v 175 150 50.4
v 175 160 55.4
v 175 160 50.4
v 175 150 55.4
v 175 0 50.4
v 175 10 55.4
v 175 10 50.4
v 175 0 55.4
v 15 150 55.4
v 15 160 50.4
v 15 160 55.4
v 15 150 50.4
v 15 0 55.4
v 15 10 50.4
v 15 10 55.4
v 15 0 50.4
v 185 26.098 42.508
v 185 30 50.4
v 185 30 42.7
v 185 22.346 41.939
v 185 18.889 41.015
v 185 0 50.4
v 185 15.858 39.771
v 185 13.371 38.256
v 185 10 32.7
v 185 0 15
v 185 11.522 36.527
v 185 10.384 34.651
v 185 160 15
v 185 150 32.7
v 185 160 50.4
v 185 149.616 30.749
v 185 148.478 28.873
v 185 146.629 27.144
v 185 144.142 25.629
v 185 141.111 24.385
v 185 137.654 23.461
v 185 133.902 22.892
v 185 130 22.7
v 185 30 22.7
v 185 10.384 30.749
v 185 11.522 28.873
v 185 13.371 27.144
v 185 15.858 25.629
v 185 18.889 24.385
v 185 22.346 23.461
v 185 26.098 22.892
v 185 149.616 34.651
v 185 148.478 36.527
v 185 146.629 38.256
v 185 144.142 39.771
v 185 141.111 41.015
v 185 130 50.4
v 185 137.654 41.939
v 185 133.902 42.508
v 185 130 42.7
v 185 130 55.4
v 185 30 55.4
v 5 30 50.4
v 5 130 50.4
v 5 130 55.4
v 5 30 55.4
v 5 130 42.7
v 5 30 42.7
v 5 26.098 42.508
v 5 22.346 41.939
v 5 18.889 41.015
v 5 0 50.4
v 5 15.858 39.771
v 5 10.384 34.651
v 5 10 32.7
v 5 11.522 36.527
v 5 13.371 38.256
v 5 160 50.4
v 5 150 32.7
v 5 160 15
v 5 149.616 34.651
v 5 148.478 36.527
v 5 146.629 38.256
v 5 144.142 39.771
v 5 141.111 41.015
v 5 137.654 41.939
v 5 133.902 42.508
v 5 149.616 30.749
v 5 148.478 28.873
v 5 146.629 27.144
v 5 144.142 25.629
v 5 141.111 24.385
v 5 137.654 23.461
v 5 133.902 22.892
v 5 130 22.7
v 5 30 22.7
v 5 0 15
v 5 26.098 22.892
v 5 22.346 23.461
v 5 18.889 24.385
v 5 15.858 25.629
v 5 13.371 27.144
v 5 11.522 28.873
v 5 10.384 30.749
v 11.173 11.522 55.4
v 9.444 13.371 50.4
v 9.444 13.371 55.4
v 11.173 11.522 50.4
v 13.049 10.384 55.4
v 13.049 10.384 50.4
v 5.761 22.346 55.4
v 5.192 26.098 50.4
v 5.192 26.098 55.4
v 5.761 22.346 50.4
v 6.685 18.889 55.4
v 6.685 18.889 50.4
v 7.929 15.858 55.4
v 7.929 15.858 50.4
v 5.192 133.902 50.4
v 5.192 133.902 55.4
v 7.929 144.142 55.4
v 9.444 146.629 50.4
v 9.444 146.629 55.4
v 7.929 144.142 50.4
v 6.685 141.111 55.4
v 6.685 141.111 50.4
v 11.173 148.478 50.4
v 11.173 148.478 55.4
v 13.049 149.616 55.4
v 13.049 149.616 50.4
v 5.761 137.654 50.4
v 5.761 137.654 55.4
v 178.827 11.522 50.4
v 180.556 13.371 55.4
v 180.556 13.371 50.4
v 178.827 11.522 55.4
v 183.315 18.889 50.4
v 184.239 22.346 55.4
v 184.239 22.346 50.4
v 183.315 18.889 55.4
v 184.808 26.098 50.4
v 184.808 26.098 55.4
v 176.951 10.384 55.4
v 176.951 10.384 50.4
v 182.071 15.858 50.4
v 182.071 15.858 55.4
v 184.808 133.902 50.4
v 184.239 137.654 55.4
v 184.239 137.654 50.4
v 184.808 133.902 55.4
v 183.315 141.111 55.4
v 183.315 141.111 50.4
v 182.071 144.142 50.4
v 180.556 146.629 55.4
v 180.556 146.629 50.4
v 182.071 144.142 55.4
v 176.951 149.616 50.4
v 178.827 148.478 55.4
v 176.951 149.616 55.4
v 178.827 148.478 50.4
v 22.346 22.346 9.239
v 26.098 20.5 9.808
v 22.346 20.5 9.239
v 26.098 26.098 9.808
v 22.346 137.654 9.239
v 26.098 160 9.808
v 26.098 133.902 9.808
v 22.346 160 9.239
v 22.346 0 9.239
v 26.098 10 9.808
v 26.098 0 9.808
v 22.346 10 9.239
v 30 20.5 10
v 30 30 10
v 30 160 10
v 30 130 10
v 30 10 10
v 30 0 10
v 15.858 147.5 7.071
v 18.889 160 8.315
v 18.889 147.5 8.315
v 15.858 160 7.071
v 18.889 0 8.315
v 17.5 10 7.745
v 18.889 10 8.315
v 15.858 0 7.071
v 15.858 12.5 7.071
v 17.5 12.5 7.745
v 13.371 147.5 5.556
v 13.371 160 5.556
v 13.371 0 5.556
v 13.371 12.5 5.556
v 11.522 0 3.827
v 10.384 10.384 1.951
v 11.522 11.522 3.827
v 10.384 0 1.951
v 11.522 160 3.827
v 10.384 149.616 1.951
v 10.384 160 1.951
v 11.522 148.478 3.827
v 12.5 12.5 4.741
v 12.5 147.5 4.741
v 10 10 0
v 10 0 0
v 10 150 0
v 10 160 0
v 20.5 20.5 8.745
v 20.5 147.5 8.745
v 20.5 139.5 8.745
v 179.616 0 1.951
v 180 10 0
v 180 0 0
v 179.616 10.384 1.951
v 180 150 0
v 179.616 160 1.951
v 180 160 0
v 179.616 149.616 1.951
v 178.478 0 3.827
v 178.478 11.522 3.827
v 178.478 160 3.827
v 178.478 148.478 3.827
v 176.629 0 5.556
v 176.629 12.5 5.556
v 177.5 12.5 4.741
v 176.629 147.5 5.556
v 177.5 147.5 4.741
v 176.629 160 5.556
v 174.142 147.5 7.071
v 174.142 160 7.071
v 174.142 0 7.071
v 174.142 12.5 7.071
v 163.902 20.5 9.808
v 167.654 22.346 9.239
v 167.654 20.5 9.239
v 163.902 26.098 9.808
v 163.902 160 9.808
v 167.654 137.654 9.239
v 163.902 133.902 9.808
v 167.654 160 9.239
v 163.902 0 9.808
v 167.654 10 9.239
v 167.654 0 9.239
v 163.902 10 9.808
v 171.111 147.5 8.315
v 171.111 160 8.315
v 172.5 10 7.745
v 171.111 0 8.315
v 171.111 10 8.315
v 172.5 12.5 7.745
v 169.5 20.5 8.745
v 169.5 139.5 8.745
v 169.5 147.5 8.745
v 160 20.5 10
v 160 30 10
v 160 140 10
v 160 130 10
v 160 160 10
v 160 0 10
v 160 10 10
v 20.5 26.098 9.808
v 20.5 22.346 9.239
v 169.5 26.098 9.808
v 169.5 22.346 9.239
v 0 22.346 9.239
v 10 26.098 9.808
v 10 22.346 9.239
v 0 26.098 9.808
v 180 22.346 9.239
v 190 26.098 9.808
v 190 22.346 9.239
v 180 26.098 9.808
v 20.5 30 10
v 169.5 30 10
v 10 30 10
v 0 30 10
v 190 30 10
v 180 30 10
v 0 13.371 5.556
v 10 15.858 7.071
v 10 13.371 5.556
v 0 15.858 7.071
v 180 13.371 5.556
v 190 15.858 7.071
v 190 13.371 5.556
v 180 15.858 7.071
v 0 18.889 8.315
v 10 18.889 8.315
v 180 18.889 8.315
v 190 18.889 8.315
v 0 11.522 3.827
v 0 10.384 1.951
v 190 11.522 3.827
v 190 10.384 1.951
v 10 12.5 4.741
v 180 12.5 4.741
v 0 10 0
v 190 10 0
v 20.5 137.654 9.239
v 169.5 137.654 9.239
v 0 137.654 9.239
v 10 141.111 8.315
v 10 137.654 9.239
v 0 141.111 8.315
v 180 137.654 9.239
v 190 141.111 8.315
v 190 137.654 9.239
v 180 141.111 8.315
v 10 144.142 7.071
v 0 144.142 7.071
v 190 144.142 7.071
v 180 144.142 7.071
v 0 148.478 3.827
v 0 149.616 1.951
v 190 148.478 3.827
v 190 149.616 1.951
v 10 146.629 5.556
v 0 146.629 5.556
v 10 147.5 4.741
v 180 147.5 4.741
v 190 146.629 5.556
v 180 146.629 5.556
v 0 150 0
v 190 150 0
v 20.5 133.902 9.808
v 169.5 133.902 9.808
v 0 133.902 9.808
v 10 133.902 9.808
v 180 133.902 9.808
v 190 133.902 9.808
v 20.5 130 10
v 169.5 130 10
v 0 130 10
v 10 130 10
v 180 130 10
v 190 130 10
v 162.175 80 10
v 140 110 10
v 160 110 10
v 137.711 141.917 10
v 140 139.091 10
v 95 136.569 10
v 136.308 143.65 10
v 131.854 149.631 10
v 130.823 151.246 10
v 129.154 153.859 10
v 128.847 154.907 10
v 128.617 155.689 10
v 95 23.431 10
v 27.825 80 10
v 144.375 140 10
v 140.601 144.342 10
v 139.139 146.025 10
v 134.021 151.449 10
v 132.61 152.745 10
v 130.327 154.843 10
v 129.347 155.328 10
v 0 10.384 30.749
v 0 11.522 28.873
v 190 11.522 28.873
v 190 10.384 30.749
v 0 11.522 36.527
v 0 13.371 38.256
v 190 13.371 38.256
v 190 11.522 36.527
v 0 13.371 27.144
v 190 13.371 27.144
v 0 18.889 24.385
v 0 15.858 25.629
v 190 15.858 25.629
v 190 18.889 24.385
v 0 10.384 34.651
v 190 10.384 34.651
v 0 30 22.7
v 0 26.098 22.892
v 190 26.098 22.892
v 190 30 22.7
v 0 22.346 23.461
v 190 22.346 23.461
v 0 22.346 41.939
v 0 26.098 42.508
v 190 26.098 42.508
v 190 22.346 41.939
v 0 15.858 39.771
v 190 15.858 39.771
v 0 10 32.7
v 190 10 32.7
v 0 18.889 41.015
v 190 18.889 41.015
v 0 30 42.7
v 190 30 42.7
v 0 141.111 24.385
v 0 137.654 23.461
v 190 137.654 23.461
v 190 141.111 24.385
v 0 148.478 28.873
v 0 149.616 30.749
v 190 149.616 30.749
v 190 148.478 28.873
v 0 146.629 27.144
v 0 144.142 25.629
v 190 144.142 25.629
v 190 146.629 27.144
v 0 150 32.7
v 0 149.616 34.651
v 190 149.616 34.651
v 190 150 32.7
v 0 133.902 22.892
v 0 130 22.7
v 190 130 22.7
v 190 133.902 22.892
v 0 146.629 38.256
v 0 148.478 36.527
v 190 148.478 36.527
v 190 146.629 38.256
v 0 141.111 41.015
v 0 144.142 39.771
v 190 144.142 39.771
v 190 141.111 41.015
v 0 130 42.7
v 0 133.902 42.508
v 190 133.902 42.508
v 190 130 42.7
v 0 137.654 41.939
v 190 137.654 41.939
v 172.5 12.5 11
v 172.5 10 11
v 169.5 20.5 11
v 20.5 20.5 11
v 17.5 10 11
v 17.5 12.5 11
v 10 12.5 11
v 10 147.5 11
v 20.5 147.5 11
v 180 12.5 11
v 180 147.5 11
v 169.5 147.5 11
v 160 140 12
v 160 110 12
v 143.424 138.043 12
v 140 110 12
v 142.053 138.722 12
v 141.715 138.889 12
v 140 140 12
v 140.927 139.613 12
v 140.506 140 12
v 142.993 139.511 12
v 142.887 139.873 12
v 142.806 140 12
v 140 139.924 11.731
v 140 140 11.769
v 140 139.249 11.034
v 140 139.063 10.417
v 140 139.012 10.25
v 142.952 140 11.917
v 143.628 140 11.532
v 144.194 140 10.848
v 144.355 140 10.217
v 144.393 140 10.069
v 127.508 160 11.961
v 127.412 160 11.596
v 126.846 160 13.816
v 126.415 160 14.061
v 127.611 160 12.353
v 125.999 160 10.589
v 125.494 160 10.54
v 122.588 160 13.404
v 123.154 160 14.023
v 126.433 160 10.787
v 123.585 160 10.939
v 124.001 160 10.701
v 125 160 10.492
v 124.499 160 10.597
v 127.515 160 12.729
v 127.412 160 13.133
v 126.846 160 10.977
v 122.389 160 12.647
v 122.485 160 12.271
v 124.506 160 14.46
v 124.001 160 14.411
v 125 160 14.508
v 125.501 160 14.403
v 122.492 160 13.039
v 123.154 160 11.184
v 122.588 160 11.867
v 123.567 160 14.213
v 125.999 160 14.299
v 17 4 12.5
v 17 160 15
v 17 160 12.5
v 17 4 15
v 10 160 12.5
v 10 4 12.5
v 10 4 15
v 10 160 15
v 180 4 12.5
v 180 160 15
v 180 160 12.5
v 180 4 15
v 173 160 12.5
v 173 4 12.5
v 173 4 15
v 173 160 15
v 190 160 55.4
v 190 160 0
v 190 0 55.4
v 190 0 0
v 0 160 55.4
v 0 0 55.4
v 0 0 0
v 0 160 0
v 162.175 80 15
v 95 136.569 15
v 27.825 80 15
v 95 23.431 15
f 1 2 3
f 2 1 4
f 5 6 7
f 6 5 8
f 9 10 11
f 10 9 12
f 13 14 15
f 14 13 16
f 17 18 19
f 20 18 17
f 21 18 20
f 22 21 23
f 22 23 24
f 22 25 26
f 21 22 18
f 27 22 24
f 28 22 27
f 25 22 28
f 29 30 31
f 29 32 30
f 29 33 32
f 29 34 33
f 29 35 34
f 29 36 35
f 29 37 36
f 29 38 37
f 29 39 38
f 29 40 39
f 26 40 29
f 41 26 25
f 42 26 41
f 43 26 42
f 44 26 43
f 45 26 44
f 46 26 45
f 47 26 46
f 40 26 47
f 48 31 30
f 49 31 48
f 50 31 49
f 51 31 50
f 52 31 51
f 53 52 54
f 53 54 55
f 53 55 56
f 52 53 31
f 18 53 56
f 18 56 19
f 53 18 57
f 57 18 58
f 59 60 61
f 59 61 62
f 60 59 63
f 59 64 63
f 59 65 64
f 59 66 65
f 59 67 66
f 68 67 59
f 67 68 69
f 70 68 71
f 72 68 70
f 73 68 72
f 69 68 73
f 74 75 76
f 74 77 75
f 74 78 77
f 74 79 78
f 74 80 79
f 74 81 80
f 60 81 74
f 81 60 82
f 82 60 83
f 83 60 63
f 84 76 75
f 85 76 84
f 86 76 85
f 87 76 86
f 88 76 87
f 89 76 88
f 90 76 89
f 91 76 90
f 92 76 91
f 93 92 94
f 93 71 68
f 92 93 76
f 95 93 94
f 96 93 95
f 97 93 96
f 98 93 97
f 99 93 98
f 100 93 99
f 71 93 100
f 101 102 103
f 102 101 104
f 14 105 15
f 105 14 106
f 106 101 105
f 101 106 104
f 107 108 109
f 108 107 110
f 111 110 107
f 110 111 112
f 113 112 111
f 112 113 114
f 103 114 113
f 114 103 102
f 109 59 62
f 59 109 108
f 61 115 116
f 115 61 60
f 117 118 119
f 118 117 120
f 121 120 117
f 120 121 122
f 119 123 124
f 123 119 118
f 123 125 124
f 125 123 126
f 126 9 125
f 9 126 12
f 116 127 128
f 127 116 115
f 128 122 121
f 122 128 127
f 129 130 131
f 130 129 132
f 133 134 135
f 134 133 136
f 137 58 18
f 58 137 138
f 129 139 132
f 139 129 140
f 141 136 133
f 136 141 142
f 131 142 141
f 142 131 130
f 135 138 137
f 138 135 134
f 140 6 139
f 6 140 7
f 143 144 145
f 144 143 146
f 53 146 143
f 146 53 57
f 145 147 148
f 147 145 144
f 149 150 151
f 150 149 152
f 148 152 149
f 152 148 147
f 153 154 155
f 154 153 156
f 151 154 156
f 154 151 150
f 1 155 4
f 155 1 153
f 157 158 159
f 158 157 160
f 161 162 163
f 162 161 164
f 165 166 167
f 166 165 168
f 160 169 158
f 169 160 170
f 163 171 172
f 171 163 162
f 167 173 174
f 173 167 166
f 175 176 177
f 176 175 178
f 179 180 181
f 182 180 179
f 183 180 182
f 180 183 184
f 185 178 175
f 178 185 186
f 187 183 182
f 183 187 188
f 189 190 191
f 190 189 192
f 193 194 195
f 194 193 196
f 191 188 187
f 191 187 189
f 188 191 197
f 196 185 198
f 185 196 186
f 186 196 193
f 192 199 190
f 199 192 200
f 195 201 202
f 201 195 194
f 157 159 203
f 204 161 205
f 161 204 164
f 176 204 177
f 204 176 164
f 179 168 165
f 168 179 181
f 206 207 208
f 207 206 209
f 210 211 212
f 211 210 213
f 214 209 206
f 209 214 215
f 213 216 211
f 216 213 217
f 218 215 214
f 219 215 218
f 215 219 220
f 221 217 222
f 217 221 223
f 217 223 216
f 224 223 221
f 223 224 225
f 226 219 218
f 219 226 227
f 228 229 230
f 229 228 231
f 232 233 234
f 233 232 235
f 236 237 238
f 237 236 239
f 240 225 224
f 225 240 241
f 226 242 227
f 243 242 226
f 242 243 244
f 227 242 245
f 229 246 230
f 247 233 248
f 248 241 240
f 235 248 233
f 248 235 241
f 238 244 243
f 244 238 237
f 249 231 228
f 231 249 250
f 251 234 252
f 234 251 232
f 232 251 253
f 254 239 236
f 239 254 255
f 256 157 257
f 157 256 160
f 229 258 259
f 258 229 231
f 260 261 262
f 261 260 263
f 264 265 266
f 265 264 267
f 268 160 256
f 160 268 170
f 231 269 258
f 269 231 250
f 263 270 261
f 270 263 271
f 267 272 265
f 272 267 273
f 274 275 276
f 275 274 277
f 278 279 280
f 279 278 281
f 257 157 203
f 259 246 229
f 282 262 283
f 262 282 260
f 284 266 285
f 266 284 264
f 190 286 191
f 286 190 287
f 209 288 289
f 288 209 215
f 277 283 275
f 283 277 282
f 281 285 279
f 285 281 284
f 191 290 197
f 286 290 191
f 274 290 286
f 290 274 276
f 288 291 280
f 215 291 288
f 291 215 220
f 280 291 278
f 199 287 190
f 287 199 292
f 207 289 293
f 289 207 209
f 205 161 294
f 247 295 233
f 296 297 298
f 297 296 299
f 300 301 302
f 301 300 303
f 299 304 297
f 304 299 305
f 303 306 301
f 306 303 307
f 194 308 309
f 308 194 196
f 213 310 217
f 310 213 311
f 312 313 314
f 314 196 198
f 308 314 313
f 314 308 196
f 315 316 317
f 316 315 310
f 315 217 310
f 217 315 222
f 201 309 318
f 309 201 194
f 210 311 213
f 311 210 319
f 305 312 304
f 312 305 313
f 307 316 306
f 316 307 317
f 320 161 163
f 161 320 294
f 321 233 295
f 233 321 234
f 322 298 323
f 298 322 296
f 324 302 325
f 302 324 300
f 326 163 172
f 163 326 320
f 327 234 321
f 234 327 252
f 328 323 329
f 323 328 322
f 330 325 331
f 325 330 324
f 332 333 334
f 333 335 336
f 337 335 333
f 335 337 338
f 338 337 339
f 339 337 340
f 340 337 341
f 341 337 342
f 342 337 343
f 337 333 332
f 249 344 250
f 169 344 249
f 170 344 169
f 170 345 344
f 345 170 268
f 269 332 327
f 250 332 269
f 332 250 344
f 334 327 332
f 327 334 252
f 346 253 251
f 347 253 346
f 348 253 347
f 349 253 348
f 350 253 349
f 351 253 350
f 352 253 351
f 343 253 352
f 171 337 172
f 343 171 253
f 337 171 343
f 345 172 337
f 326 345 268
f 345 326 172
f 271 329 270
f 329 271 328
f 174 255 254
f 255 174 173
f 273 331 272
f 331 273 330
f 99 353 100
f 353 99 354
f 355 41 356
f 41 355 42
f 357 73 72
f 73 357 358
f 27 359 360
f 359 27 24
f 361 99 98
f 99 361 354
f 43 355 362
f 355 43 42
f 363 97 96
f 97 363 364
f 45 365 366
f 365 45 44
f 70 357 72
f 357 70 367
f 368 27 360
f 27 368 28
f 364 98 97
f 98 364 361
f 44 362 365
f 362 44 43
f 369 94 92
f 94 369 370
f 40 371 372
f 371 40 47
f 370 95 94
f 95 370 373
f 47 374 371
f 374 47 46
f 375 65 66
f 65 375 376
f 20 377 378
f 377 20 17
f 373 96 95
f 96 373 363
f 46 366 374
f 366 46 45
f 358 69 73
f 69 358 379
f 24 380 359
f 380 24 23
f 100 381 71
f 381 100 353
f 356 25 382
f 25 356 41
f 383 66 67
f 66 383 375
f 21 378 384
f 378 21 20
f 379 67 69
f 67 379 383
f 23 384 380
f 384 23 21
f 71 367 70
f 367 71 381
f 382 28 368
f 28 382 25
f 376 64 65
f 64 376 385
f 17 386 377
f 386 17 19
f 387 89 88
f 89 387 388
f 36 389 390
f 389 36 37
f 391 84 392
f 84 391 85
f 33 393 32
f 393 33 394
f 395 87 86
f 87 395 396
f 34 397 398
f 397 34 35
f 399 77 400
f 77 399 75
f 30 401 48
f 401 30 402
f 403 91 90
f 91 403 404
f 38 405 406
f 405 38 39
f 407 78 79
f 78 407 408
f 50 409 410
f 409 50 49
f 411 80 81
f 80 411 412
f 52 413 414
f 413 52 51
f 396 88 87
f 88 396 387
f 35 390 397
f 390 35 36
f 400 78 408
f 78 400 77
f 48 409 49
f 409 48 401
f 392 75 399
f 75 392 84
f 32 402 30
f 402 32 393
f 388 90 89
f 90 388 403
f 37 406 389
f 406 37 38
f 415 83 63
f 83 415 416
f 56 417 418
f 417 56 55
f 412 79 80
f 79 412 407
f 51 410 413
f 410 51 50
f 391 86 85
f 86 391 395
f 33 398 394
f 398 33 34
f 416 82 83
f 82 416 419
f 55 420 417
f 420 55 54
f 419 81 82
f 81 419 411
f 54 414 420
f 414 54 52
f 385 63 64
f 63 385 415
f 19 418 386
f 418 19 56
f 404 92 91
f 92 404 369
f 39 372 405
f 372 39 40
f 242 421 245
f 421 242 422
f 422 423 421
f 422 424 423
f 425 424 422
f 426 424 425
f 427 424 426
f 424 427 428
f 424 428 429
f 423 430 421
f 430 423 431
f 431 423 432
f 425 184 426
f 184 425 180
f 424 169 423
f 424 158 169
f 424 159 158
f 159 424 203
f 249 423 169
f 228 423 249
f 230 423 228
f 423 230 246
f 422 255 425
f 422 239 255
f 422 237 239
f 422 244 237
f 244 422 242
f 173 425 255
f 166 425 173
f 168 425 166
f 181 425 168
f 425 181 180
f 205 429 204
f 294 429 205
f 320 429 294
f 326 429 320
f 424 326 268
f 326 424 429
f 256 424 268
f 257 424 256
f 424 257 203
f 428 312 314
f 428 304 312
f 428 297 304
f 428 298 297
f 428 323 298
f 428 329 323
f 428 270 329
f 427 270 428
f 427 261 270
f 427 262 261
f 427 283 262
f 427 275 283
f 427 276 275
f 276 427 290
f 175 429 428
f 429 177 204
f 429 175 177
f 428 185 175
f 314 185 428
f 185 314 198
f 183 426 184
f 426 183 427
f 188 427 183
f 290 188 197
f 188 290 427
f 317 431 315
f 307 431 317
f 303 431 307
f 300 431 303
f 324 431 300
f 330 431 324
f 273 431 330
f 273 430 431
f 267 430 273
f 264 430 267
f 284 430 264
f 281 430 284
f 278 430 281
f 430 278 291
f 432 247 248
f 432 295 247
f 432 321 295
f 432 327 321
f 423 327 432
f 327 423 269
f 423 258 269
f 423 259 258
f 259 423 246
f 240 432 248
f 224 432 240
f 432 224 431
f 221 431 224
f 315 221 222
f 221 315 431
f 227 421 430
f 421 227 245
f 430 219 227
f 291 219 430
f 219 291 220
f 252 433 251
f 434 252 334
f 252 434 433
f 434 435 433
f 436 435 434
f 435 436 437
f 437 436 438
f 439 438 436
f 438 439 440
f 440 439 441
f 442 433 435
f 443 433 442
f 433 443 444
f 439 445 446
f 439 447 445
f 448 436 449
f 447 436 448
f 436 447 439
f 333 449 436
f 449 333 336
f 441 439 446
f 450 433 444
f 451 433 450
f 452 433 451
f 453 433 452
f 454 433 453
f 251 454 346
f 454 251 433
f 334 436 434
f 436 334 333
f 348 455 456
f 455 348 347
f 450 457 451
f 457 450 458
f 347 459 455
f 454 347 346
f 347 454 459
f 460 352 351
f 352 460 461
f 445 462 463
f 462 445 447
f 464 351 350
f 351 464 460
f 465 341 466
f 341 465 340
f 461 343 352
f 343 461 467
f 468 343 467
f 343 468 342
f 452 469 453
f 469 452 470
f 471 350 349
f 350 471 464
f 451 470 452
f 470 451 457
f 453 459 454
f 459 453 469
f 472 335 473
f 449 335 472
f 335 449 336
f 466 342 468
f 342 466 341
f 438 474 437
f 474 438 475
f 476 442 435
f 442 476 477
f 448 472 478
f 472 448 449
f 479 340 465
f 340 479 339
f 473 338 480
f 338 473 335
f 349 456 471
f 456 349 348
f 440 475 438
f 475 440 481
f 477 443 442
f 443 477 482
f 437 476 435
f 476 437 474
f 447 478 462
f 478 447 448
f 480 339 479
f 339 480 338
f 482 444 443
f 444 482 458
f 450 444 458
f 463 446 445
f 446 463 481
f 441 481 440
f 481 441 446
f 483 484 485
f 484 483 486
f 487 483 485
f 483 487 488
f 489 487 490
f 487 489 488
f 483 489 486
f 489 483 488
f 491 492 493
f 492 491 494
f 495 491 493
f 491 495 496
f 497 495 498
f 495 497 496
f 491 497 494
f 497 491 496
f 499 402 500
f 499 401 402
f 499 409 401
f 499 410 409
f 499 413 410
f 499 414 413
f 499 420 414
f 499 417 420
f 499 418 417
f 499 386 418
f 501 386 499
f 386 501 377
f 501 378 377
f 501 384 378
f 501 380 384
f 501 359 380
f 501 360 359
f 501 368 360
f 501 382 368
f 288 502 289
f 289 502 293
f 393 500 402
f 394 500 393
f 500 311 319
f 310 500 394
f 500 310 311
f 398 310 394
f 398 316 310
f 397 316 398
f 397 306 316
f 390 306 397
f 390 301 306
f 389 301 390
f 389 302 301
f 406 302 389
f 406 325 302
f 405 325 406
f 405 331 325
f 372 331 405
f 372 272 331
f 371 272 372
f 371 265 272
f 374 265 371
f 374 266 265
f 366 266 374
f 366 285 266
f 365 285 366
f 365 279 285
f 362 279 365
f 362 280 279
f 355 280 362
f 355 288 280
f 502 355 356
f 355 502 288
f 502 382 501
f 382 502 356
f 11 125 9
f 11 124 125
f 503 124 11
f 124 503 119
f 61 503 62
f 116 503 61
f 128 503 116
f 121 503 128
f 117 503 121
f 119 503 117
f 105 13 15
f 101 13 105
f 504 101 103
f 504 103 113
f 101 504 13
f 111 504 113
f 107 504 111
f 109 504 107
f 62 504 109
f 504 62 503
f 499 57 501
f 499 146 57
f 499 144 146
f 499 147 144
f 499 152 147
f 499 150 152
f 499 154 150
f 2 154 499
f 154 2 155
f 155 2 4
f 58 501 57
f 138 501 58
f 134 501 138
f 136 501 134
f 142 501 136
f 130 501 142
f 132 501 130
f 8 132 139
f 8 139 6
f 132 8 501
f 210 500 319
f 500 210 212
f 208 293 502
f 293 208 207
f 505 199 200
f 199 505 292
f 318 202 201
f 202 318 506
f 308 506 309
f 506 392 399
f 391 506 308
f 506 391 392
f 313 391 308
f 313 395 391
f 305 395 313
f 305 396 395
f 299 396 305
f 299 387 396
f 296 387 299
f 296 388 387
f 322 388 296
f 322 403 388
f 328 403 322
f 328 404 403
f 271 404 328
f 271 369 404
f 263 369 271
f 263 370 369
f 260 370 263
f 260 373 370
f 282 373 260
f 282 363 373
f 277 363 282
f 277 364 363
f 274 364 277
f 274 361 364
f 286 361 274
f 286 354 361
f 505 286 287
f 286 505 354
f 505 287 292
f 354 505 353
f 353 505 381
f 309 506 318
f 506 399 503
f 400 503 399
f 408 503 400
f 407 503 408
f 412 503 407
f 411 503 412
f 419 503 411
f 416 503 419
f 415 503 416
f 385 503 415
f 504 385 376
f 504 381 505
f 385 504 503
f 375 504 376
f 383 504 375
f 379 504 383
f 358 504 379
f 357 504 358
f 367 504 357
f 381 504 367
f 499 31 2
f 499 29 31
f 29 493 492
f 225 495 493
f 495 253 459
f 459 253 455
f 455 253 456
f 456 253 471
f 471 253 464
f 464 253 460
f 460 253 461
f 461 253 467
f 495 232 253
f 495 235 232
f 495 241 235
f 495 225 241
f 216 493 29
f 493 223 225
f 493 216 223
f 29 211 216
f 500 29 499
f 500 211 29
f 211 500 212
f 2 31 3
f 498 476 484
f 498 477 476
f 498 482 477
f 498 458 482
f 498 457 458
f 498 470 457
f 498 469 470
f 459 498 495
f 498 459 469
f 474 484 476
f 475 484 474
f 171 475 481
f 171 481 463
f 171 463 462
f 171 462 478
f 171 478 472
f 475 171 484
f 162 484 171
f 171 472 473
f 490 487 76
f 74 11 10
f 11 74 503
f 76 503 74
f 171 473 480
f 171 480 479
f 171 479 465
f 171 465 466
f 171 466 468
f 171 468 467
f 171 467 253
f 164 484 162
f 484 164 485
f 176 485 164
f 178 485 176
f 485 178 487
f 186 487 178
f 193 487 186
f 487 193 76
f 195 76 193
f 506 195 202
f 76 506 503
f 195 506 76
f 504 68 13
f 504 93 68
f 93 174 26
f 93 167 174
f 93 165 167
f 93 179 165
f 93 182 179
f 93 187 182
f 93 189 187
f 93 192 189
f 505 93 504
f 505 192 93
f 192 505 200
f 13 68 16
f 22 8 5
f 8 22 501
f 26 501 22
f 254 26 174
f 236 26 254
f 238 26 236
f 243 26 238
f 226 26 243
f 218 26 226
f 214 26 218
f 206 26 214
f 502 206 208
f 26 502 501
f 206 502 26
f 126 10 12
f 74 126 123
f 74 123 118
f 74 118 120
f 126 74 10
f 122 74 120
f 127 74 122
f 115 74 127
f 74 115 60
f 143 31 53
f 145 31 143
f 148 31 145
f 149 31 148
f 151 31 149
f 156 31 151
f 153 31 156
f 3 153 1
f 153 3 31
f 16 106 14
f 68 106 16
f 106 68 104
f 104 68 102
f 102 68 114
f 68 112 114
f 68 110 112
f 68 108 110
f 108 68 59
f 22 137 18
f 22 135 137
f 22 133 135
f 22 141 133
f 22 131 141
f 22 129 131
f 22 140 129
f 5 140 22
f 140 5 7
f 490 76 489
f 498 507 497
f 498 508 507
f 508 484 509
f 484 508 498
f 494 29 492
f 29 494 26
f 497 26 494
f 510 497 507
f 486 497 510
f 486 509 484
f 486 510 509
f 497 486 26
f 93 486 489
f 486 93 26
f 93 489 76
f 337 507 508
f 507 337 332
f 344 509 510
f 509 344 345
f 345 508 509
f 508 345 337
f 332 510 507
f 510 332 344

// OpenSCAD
pc_w = 180;
pc_h = 35.4;

wall = 5;

base_l = 160;
base_h = pc_h+wall*2+wall*2;
base_w = pc_w+wall*2;

difference() {
	cube([base_w, base_l, base_h]);
	translate([wall,-wall,wall*3])
		cube([pc_w, base_l+wall*2, pc_h]);
	top_hole();
	foot_hole_round();
	foot_hole();
	side_hole();
	bottom_hole();
	
	led_ruban();
	led_controler();
	pc_foot();
}

module top_hole() {
	translate([wall*3,-wall,base_h-wall*2])
		cube([pc_w-wall*4,base_l+wall*2,wall*3]);
	translate([wall,wall*6,base_h-wall*2])
		cube([pc_w,base_l-wall*12,wall*3]);
	translate([wall*3,wall*6,base_h-wall*2])
		scale([wall*2,wall*4,1])
			cylinder(wall*3,1,1, $fn=32);
	translate([wall*3,base_l-wall*6,base_h-wall*2])
		scale([wall*2,wall*4,1])
			cylinder(wall*3,1,1, $fn=32);
	translate([base_w-wall*3,wall*6,base_h-wall*2])
		scale([wall*2,wall*4,1])
			cylinder(wall*3,1,1, $fn=32);
	translate([base_w-wall*3,base_l-wall*6,base_h-wall*2])
		scale([wall*2,wall*4,1])
			cylinder(wall*3,1,1, $fn=32);
}

module foot_hole() {
	translate([wall*6,-wall,-wall])
		cube([base_w-wall*12,base_l+wall*2,wall*3]);
	translate([-wall,wall*6,-wall])
		cube([base_w+wall*2,base_l-wall*12,wall*3]);
}

module foot_hole_round() {
	translate([wall*6,-wall,0])
		rotate([-90,0,0])
			scale([wall*4,wall*2,1])
				cylinder(base_l+wall*2,1,1, $fn=32);
	translate([base_w-wall*6,-wall,0])
		rotate([-90,0,0])
			scale([wall*4,wall*2,1])
				cylinder(base_l+wall*2,1,1, $fn=32);
	translate([-wall,wall*6,0])
		rotate([-90,0,-90])
			scale([wall*4,wall*2,1])
				cylinder(base_w+wall*2,1,1, $fn=32);
	translate([-wall,base_l-wall*6,0])
		rotate([-90,0,-90])
			scale([wall*4,wall*2,1])
				cylinder(base_w+wall*2,1,1, $fn=32);
}

module side_hole() {
	/*translate([wall/2, base_l/2, 15+pc_h/2])
		cube([wall*2, base_l-wall*2, pc_h], true);**/
	translate([base_w/2, 10+20,15+pc_h/2])
		rotate([0,90,0])
			scale([10,20,1])
				cylinder(base_w+20,1,1, center = true, $fn=32);
	translate([base_w/2, base_l-10-20,15+pc_h/2])
		rotate([0,90,0])
			scale([10,20,1])
				cylinder(base_w+20,1,1, center = true, $fn=32);
	translate([base_w/2, base_l/2,pc_h/2+15])
		cube([base_w+20,base_l-20-20-10-10,20], true);
}

module bottom_hole() {
	translate([base_w/2, base_l/2, 10+wall/2])
		scale([base_w/2,base_l/2,1])
			rotate([0,0,45])
				cube([1,1,wall*2], true);

}

module led_ruban() {
	l = 135;
	w = 10.5;
	translate([base_w/2-l/2-10,10,10-9])
		cube([l+20,w,10]);
	translate([10,base_l/2-l/2,10-9])
		cube([w,l,10]);
	translate([base_w-10-w,base_l/2-l/2,10-9])
		cube([w,l,10]);
}

module led_controler() {
	l = 30;
	translate([base_w-40,base_l-l/2-20, 10])
		cube([20,l,4], center=true);
	translate([base_w-65,base_l, 12.5])
		rotate([-85,0,40])
			cylinder(90,4/2,4/2, $fn=16, center = true);
}

module pc_foot() {
	w = 7;
	p=2.5;
	translate([5+5,4,15-p])
		cube([w,base_l, p*2]);
	translate([base_w-5-5-w,4,15-p])
		cube([w,base_l, p*2]);
}

color("red") {
}
